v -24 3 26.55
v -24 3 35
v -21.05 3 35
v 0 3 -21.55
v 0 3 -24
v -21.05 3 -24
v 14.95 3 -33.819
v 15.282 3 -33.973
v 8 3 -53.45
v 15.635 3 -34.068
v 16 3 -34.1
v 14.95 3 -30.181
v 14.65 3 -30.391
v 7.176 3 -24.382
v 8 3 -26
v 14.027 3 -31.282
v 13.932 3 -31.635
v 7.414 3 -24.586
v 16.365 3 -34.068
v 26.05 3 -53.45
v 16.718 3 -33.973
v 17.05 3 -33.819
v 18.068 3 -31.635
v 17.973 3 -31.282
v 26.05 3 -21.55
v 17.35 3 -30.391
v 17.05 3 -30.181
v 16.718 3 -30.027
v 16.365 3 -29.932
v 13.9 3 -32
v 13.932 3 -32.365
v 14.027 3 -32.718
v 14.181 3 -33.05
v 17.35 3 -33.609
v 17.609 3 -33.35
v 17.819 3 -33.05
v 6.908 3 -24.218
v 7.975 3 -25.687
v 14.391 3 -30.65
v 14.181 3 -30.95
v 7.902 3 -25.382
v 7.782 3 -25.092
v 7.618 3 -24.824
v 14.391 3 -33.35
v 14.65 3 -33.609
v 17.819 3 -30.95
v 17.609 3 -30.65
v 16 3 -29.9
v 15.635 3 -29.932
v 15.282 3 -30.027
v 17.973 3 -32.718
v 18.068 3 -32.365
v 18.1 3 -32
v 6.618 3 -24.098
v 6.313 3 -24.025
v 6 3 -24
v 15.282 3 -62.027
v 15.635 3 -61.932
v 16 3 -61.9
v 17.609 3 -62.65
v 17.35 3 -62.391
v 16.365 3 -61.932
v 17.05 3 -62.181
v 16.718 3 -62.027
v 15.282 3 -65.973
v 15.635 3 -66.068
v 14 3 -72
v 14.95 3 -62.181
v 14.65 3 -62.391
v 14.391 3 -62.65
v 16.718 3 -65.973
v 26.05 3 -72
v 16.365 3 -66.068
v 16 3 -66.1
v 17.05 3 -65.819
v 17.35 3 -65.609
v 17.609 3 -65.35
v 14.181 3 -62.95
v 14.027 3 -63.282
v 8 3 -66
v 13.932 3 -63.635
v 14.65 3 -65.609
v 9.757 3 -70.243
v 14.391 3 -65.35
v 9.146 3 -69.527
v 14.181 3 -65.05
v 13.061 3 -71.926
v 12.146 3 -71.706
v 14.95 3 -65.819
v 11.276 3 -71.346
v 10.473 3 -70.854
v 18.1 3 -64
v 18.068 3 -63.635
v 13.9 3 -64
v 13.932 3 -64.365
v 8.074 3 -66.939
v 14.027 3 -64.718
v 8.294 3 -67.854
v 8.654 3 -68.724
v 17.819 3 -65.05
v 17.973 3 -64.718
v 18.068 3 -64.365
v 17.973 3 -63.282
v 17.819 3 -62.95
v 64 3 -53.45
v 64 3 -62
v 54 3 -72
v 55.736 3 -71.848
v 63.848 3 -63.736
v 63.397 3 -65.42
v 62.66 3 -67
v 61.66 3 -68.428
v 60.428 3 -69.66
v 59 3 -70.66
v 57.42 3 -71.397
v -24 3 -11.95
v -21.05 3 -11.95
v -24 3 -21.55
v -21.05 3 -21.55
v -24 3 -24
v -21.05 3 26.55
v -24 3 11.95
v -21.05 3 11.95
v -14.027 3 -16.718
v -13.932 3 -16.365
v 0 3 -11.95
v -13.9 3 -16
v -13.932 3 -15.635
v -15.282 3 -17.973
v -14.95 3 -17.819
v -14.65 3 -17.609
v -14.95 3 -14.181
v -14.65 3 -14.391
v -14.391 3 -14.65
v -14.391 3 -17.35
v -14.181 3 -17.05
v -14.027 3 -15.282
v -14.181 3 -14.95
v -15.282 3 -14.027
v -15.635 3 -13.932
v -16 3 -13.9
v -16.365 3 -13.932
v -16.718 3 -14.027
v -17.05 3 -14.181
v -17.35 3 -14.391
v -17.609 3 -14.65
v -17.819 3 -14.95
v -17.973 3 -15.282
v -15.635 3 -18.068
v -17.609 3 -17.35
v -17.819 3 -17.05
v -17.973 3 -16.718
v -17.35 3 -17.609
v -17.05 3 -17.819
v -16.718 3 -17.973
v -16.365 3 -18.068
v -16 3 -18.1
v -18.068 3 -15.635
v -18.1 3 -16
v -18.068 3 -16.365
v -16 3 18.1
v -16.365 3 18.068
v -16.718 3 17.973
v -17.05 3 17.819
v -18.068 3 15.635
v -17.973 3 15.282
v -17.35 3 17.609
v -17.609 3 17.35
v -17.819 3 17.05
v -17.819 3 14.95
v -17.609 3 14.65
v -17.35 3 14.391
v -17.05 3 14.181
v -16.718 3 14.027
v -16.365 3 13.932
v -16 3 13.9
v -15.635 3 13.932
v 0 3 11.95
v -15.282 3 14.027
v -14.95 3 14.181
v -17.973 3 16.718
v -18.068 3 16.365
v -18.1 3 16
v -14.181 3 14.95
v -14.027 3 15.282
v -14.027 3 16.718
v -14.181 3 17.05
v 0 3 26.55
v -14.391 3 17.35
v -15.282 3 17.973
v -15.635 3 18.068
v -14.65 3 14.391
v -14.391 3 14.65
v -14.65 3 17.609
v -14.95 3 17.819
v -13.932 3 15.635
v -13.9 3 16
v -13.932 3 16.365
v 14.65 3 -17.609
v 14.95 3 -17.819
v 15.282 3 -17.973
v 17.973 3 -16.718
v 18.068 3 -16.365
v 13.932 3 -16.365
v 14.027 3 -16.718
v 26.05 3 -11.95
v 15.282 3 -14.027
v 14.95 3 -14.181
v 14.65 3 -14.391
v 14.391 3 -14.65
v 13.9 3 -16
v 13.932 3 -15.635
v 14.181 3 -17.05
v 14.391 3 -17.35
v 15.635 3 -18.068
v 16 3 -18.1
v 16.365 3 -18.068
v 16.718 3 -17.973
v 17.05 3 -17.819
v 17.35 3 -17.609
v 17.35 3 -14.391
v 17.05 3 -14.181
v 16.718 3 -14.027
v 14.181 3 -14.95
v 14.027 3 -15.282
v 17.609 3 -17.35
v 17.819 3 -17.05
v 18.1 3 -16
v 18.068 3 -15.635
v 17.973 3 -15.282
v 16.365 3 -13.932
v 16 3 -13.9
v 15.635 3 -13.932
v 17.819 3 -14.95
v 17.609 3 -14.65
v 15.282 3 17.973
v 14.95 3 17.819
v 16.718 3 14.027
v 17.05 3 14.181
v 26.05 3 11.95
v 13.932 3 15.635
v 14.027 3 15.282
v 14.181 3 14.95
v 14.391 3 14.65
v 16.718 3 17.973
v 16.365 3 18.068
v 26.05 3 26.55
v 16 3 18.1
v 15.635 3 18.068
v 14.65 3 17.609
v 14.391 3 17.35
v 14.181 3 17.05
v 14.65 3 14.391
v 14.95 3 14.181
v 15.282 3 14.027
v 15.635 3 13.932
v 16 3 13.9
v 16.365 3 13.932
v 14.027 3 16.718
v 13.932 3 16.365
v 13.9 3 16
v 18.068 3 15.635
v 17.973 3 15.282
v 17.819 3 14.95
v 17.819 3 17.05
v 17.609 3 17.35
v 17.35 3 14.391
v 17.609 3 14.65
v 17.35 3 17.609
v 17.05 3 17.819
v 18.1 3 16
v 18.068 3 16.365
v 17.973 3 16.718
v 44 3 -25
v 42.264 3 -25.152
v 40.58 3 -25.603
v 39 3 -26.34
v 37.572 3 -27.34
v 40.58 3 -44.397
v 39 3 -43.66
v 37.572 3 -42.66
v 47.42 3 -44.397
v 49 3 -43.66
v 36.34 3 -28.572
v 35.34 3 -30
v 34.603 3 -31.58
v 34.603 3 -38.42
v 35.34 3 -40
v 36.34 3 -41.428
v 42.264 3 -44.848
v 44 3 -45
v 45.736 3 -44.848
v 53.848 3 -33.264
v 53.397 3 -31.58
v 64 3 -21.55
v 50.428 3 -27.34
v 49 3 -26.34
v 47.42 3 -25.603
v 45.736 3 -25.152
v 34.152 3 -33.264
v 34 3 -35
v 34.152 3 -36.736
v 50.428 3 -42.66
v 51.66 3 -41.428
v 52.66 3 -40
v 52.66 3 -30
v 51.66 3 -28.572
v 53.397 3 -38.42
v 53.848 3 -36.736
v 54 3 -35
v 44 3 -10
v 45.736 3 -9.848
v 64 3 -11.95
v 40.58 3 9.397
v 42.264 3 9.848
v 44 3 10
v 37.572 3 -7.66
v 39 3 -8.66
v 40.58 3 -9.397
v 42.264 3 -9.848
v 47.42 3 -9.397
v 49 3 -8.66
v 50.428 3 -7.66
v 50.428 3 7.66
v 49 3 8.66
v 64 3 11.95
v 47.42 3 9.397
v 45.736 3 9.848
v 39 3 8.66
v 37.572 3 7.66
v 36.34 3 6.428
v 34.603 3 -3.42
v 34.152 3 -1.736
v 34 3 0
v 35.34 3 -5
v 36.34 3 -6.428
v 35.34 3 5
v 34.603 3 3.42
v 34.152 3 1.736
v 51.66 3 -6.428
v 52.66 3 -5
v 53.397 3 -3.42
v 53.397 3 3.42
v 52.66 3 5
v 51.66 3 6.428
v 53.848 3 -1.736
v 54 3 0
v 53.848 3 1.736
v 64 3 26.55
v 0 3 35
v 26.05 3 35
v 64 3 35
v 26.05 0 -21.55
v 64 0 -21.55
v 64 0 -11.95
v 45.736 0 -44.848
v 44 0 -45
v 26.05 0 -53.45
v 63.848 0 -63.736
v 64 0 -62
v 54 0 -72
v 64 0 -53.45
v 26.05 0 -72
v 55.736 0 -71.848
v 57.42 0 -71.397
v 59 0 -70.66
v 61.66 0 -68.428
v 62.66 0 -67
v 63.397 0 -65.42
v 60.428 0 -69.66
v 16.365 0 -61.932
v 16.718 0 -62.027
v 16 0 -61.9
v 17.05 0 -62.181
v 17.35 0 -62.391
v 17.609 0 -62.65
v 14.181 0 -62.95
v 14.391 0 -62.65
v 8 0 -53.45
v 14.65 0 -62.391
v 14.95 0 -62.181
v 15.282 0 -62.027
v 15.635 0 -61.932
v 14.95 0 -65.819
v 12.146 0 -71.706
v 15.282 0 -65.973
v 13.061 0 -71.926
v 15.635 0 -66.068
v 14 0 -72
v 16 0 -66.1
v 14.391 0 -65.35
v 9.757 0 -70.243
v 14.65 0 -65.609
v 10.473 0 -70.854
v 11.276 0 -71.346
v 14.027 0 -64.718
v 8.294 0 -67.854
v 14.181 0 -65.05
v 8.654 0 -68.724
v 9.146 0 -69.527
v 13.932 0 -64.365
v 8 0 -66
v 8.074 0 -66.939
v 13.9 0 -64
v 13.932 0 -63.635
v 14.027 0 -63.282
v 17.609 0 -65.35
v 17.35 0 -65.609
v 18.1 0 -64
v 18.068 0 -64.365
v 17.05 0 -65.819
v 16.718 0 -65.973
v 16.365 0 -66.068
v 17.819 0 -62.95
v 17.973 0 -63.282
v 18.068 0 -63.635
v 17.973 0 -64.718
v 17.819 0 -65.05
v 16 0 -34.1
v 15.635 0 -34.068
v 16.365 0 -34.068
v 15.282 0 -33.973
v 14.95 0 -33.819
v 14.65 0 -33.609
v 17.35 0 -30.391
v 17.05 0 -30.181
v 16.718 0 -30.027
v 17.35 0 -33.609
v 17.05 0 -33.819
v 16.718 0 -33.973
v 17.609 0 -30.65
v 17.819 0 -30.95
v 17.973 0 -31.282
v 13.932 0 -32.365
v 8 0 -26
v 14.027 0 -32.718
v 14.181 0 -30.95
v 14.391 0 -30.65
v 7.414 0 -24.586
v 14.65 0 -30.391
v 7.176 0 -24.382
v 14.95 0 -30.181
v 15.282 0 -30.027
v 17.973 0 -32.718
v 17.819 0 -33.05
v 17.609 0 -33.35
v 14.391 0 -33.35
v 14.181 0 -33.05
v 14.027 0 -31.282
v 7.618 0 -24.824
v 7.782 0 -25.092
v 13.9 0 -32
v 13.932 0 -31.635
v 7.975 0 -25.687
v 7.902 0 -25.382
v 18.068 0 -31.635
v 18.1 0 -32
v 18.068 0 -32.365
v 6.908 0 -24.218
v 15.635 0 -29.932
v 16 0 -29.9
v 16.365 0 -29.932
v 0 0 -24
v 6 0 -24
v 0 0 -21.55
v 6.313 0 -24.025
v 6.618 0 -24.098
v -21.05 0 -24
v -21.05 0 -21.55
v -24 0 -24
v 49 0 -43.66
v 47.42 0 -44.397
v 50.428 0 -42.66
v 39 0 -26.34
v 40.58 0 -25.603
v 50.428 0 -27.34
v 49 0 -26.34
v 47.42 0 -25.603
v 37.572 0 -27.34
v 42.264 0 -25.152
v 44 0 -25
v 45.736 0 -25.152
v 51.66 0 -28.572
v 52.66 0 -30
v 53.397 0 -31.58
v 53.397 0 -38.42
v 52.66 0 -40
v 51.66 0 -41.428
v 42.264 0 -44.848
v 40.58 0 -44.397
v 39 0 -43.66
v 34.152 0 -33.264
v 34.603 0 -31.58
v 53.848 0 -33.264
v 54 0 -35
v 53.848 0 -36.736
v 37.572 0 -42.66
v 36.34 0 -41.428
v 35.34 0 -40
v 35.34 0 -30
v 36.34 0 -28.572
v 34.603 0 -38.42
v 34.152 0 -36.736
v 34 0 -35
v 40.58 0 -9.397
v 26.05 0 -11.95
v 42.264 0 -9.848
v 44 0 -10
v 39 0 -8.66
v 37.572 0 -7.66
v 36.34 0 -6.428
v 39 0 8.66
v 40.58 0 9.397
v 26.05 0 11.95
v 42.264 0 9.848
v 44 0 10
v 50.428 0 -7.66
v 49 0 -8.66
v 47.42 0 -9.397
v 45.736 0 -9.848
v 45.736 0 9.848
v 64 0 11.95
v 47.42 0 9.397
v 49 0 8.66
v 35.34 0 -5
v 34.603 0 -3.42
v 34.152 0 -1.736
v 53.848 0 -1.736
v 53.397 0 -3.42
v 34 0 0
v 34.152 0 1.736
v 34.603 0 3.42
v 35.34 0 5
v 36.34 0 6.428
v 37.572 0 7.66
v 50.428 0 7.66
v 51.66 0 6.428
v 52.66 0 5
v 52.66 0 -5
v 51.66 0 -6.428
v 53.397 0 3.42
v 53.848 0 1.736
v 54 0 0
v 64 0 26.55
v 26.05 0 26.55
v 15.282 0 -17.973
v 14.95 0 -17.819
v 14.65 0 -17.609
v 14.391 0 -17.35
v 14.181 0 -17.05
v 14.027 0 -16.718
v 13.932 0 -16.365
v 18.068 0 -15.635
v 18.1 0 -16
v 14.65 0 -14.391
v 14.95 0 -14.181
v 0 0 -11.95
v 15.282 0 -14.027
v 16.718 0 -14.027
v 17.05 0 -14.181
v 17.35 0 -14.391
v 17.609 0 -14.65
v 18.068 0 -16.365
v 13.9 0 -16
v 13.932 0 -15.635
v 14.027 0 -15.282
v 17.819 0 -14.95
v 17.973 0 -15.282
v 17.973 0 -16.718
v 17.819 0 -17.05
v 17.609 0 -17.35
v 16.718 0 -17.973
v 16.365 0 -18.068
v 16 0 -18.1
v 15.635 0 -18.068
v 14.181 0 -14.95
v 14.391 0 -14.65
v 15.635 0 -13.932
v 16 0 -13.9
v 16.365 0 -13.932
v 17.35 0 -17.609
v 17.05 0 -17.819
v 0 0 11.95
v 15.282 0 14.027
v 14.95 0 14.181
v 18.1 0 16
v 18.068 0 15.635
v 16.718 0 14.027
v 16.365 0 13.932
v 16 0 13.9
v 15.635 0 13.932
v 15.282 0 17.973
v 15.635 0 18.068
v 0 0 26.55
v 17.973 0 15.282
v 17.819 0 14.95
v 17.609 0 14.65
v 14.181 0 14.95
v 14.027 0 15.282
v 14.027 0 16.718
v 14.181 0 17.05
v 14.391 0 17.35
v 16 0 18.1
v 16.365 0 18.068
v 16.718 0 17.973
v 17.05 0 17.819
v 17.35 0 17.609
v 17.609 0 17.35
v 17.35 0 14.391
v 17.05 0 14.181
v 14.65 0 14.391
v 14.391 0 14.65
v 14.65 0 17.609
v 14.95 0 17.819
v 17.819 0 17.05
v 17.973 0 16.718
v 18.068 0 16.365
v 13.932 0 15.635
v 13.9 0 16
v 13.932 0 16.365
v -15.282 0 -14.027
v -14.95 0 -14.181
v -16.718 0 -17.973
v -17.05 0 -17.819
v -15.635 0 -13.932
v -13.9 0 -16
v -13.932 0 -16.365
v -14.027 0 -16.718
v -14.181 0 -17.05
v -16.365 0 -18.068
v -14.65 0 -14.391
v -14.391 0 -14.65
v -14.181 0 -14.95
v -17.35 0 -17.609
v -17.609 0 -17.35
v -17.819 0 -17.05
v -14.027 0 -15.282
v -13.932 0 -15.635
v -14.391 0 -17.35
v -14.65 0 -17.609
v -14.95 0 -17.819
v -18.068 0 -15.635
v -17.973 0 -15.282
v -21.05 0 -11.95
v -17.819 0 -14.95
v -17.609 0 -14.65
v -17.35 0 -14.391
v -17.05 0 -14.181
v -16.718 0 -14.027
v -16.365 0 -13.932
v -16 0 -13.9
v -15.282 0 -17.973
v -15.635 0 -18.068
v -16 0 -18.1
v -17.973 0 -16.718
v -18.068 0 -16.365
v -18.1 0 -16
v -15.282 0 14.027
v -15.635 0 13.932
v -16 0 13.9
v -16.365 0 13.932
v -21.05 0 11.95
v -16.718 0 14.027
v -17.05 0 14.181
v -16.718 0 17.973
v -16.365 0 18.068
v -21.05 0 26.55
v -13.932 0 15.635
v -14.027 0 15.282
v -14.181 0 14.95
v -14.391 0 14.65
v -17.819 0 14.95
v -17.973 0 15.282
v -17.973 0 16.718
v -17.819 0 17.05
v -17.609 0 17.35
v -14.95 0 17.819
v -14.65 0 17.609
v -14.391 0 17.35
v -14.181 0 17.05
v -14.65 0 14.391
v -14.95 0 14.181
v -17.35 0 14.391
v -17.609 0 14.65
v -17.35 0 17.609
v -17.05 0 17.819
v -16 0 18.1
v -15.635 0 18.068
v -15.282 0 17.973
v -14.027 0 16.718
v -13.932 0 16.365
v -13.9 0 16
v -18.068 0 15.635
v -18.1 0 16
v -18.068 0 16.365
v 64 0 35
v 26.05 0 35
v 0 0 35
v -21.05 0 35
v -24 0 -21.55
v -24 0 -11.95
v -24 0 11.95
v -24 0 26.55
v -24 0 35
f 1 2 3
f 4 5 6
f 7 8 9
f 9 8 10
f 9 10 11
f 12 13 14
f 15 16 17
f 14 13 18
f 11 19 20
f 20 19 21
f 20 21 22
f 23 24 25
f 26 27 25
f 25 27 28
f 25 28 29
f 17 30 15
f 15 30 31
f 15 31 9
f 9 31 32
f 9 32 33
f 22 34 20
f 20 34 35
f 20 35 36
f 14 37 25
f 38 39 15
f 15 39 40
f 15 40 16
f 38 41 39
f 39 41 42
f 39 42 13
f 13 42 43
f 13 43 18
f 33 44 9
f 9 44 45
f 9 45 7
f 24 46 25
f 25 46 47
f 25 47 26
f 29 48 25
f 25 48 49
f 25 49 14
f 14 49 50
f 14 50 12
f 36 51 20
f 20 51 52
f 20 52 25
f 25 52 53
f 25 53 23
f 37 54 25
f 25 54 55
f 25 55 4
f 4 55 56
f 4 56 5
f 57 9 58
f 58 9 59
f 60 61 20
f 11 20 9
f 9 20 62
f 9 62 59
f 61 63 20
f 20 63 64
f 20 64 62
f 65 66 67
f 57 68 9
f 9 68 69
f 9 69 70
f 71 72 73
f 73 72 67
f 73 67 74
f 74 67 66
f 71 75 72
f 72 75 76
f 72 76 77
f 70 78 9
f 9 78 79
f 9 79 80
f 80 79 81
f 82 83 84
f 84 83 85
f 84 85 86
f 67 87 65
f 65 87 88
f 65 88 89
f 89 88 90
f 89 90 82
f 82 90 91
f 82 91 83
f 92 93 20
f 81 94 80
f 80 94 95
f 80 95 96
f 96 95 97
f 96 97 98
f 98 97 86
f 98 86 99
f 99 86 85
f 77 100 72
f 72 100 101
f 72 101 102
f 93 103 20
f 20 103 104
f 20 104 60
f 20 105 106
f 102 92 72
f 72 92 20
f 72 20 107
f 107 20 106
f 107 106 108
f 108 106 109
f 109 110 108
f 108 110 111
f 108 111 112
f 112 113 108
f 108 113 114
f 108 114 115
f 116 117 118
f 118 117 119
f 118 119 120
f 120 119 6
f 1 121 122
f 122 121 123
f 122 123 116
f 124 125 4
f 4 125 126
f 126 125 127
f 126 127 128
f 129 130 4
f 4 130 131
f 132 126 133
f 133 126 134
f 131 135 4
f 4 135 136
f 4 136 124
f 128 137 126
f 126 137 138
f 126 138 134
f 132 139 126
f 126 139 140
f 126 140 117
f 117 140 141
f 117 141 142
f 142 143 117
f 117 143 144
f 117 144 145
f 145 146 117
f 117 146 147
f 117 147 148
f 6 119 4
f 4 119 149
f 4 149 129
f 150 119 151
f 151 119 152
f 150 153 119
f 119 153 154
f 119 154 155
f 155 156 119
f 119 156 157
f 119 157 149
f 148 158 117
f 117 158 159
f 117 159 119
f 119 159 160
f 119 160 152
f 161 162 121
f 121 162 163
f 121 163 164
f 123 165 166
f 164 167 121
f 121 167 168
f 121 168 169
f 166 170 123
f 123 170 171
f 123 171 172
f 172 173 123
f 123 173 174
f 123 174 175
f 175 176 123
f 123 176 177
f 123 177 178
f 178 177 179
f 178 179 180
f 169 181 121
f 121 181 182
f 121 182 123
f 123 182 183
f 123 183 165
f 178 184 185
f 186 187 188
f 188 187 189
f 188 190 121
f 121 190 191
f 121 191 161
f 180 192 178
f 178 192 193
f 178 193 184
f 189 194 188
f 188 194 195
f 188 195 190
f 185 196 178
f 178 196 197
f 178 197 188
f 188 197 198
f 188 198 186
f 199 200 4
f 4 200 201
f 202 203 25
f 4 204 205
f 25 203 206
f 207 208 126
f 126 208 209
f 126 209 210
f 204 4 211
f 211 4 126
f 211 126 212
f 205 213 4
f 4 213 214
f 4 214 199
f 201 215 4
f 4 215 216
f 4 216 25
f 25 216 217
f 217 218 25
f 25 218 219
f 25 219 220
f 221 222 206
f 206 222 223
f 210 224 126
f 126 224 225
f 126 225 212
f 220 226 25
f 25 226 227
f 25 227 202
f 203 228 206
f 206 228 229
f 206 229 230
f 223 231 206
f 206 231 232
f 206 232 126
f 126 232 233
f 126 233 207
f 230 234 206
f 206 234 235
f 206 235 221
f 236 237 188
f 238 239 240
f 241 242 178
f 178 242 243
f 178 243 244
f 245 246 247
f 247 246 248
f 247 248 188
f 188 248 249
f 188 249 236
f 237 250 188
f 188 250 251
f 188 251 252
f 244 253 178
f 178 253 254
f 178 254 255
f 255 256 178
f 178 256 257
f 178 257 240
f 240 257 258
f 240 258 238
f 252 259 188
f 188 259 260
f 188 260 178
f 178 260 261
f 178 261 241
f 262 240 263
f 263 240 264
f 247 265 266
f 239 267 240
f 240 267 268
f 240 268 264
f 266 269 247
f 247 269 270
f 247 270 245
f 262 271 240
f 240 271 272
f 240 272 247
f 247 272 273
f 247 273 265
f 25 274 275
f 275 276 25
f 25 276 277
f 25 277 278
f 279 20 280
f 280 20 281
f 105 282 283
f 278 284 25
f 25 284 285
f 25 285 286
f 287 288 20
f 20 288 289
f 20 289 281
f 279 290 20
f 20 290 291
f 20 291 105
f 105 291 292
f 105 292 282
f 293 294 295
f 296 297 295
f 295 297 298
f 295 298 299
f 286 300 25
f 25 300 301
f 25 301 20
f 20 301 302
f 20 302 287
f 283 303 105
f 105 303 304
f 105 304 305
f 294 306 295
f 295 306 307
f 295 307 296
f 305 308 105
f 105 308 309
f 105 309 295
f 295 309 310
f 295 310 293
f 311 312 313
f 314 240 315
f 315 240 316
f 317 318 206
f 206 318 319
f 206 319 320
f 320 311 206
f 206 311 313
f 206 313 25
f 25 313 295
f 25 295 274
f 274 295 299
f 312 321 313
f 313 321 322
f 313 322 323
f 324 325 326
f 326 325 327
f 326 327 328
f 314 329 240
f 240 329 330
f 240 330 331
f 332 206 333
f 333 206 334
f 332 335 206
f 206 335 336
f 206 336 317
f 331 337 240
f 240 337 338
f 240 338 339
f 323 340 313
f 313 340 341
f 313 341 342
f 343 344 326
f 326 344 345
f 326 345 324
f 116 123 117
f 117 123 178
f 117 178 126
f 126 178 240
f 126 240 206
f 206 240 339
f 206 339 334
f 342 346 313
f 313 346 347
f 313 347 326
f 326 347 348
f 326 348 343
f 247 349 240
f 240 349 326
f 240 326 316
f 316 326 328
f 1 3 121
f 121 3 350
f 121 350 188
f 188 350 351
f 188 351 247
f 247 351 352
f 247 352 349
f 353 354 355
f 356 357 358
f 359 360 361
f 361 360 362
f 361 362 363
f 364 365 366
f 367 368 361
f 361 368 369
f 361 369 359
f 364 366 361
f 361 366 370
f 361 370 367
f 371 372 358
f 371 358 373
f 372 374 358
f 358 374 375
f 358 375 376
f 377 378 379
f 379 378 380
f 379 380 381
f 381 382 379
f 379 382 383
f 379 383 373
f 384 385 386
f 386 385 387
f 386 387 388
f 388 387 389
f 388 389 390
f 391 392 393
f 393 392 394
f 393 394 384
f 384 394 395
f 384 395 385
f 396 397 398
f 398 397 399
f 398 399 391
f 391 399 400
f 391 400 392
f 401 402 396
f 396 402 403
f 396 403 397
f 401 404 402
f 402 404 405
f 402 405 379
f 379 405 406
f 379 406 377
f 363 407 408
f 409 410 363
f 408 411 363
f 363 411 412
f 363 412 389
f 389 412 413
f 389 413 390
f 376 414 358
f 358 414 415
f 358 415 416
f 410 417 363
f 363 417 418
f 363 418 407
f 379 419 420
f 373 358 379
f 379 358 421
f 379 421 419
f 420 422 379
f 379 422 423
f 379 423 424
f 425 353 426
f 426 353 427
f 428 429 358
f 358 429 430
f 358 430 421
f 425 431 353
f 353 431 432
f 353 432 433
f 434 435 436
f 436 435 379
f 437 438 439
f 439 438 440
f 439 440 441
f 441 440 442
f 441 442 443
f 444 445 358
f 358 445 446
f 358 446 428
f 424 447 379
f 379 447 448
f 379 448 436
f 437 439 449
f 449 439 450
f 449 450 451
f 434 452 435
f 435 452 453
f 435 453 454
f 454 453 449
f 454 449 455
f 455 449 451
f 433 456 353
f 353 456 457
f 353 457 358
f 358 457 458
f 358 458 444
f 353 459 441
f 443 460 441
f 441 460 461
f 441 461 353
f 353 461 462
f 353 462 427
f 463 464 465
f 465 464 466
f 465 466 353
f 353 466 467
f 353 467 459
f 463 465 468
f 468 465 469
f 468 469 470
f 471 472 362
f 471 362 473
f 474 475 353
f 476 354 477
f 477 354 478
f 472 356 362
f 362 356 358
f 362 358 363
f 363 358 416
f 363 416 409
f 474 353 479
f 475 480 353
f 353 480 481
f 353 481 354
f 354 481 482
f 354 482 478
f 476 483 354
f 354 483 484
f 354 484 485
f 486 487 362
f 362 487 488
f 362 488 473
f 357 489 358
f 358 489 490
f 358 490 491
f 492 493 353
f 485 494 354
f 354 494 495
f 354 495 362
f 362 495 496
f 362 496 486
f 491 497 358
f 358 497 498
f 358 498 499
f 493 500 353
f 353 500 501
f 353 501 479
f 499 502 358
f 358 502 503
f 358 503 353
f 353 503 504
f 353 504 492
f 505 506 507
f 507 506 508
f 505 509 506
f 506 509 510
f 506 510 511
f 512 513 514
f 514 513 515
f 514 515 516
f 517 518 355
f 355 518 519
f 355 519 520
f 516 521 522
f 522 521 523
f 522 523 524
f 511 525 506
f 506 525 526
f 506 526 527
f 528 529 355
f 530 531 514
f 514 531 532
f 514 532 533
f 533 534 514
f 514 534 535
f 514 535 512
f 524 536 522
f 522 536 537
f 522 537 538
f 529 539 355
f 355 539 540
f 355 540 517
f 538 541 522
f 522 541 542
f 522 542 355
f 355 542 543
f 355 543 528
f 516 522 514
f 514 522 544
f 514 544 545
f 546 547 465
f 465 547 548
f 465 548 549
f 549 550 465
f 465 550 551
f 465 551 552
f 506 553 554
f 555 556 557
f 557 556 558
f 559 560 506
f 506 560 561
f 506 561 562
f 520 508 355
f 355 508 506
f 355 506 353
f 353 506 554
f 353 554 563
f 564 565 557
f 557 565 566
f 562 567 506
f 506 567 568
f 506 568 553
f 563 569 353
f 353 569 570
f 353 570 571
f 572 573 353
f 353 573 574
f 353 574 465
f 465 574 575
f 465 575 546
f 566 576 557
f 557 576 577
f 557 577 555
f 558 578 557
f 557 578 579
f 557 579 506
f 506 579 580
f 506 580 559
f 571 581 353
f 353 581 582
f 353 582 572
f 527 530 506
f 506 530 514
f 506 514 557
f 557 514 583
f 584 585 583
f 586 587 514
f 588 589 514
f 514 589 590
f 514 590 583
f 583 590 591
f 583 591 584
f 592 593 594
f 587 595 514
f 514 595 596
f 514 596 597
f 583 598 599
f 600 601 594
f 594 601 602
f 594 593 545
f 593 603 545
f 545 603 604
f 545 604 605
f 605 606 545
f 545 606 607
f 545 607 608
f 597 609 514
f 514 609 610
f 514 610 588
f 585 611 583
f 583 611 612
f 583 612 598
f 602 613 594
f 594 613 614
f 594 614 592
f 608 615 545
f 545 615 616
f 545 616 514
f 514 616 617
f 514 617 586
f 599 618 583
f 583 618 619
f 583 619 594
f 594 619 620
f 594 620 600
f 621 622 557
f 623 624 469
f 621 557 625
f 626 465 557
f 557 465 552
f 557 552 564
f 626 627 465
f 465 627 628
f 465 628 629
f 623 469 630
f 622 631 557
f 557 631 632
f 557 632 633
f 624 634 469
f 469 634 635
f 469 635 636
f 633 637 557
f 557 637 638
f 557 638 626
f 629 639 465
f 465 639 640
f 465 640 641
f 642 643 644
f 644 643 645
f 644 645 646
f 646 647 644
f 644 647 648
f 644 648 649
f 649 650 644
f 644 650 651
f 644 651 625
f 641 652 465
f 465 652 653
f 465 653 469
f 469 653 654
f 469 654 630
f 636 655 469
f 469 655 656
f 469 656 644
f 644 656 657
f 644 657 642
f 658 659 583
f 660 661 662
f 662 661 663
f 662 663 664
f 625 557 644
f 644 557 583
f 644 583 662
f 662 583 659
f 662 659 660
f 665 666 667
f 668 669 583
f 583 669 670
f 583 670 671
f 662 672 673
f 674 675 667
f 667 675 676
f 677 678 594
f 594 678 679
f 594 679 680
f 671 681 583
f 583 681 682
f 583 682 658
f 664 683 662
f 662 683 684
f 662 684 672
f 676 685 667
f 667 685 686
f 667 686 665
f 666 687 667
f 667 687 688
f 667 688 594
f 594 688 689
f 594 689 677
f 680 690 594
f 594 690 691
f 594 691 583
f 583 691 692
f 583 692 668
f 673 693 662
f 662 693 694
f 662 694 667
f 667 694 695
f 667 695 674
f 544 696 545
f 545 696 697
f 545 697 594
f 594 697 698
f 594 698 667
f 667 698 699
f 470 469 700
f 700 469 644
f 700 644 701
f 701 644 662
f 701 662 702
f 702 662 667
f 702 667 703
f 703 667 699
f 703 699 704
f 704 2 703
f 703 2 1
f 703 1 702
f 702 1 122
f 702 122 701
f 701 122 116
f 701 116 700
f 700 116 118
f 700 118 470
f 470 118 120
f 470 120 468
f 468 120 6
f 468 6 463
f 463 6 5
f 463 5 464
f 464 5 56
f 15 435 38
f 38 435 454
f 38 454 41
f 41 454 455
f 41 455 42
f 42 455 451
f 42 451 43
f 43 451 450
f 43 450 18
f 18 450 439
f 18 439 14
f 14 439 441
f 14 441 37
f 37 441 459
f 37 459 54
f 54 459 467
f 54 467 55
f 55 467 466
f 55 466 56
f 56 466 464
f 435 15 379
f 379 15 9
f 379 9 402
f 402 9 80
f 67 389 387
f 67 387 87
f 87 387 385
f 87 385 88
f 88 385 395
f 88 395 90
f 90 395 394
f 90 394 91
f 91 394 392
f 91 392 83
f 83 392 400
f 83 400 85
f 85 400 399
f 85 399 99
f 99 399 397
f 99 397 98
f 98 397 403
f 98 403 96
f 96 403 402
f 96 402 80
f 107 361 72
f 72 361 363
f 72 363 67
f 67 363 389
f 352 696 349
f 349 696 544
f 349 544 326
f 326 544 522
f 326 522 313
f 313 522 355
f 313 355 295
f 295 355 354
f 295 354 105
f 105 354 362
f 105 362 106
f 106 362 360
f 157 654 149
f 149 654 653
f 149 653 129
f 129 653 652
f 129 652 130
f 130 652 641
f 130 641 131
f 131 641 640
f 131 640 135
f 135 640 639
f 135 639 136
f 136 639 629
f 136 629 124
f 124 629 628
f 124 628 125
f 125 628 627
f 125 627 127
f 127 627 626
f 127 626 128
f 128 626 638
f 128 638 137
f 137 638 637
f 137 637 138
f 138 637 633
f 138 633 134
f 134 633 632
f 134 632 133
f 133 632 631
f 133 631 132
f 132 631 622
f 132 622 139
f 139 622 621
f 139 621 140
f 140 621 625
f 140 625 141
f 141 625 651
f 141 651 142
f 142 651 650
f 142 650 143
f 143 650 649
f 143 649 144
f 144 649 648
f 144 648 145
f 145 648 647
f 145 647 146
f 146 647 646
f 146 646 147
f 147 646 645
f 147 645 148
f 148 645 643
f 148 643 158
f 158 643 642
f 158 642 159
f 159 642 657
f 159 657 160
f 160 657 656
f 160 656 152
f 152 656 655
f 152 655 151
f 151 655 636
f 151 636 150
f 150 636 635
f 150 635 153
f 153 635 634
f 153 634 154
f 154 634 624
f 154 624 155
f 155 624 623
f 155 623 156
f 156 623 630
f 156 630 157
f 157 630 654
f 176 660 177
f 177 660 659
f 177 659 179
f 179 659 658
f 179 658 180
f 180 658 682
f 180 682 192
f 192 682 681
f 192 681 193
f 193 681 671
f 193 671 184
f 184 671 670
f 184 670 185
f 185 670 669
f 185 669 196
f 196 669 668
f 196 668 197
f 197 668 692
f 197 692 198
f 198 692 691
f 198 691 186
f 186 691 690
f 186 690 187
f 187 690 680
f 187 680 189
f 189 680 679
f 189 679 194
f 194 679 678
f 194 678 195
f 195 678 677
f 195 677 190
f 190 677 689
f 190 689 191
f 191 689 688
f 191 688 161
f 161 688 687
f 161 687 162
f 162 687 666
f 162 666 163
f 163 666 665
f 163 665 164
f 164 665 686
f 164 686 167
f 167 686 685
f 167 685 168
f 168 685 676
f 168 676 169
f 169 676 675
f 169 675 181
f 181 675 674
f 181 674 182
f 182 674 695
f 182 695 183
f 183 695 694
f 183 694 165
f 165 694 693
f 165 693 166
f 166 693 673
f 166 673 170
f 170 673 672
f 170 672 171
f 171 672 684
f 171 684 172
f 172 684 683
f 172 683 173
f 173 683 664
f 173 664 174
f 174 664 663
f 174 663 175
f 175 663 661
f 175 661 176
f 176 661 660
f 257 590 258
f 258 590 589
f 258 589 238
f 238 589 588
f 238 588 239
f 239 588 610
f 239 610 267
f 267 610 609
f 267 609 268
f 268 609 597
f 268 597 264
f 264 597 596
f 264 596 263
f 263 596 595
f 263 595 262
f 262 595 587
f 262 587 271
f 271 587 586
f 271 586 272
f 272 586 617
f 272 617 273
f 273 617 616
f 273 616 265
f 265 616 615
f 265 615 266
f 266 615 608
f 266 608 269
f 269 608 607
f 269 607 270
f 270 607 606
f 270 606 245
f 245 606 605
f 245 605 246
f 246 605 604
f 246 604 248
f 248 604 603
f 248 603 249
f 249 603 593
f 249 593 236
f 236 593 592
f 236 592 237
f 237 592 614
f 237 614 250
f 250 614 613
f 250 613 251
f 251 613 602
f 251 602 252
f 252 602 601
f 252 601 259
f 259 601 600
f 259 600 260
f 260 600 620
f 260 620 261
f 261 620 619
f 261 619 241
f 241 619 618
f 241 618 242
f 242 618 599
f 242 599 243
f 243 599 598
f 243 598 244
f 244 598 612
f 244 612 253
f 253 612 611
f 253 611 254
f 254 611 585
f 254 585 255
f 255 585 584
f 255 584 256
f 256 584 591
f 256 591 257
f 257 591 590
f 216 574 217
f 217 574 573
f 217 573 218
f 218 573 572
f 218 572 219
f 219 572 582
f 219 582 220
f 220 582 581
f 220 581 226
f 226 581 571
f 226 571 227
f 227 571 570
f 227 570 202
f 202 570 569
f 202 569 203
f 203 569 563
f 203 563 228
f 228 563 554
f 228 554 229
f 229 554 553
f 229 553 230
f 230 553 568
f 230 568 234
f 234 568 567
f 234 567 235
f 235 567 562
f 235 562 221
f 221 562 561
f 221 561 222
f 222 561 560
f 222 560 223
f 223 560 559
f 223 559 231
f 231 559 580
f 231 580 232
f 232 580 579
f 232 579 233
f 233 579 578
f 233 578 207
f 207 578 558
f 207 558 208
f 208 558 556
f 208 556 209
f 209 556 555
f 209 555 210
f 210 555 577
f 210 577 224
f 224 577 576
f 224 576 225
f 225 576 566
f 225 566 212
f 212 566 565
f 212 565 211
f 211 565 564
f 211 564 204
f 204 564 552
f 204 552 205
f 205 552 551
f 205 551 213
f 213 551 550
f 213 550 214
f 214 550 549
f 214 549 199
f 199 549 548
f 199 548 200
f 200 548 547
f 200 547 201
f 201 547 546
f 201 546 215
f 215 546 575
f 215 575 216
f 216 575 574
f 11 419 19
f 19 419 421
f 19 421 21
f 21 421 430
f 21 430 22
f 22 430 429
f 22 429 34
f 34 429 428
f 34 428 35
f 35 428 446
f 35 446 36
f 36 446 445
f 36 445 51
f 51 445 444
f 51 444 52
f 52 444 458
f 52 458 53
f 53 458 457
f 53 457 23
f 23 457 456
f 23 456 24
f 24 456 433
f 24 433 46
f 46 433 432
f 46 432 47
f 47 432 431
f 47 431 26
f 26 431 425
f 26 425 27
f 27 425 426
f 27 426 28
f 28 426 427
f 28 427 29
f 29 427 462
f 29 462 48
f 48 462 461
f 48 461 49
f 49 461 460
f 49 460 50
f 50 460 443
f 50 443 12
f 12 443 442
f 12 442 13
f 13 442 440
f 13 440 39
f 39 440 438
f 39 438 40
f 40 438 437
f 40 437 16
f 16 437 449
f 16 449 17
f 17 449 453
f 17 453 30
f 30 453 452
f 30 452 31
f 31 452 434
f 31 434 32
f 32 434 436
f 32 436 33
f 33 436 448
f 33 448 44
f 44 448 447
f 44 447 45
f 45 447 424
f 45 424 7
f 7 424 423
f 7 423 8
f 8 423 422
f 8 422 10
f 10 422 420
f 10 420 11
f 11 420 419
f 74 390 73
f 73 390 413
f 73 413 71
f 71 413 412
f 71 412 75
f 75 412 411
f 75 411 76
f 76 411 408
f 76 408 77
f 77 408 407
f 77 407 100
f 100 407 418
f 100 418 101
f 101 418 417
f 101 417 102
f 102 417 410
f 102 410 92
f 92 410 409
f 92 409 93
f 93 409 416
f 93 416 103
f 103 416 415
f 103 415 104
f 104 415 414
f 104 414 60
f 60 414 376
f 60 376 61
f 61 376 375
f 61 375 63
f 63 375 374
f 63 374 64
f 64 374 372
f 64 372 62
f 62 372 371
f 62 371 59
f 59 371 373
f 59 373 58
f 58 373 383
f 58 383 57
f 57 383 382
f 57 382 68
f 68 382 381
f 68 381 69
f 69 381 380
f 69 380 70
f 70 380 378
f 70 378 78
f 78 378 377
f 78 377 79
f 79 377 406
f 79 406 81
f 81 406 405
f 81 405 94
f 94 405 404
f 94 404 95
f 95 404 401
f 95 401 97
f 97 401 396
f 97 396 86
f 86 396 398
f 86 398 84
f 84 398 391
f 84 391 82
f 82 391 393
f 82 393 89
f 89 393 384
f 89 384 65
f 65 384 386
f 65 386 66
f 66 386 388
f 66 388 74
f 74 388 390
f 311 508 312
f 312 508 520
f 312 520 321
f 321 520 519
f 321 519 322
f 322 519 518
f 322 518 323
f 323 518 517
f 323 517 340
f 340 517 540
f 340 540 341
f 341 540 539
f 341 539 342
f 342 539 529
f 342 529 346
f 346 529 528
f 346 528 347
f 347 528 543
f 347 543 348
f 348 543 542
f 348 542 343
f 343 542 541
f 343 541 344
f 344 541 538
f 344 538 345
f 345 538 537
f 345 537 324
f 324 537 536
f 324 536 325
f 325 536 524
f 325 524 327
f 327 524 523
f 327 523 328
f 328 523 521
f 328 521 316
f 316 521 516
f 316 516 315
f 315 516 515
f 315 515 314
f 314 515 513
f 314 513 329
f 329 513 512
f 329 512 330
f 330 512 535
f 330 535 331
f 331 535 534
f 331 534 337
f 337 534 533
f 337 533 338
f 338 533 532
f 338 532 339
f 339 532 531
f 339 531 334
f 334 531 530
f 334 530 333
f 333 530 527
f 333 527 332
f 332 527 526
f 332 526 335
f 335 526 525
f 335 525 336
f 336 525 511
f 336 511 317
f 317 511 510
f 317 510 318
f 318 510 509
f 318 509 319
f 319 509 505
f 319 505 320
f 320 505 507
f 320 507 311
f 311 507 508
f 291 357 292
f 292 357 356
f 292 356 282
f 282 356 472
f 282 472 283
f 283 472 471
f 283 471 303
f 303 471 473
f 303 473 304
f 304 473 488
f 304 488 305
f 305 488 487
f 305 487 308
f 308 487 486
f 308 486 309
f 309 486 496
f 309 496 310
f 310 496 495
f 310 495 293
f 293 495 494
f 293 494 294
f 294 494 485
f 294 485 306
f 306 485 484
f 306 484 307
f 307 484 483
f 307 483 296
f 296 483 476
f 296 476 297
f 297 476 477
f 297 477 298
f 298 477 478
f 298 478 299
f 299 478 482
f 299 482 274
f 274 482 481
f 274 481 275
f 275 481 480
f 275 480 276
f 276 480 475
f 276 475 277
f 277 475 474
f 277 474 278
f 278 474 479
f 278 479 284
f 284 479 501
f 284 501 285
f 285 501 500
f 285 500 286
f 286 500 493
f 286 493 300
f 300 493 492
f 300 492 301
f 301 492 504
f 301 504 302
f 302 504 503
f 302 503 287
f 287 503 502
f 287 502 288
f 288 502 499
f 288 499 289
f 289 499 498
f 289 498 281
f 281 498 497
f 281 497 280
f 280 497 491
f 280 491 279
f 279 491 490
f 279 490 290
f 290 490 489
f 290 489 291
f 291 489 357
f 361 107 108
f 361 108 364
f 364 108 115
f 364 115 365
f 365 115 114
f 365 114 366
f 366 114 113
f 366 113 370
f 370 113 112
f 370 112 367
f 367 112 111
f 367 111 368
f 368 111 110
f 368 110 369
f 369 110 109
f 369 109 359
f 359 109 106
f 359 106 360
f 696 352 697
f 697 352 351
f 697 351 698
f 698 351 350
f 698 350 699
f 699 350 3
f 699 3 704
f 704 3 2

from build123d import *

# Parameters (mm, degrees)
BACKPLATELEFT_MIRRORED_OUTLINE_R   = 2.1
BACKPLATELEFT_MIRRORED_OUTLINE_R_2 = 10
BACKPLATELEFT_MIRRORED_DEPTH       = 3
SKETCH2_W                          = 40
SKETCH2_H                          = 103.465043027
CUT_EXTRUDE1_DEPTH                 = 10
SKETCH3_W                          = 25.884261779
SKETCH3_H                          = 20.988460011
BOSS_EXTRUDE1_DEPTH                = 3
FILLET1_R                          = 10
CUT_EXTRUDE2_DEPTH                 = 97.379458392
CUT_EXTRUDE2_DEPTH_BACK            = 97.379458392
SKETCH4_W                          = 88
SKETCH4_H                          = 4


# Read off the part's stored shape, not the designer's step: backPlateLeft_Mirrored
with BuildPart() as part:
    # backPlateLeft_Mirrored outline → backPlateLeft_Mirrored (new body)
    with BuildSketch(Plane(origin=(0, 0, 0), x_dir=(1, 0, 0), z_dir=(0, 1, 0))):
        with BuildLine():
            Line((-24, 24), (-24, -39))
            Line((-24, -39), (64, -39))
            Line((64, -39), (64, 135))
            ThreePointArc((64, 135), (62.242640687, 139.242640687), (58, 141))
            Line((58, 141), (30, 141))
            ThreePointArc((30, 141), (25.757359313, 139.242640687), (24, 135))
            Line((24, 135), (24, 72))
            Line((24, 72), (14, 72))
            ThreePointArc((14, 72), (9.757359313, 70.242640687), (8, 66))
            Line((8, 66), (8, 26))
            ThreePointArc((8, 26), (7.414213562, 24.585786438), (6, 24))
            Line((6, 24), (-24, 24))
        make_face()
        with Locations((-16, -16)):
            Circle(BACKPLATELEFT_MIRRORED_OUTLINE_R, mode=Mode.SUBTRACT)
        with Locations((16, -16)):
            Circle(BACKPLATELEFT_MIRRORED_OUTLINE_R, mode=Mode.SUBTRACT)
        with Locations((-16, 16)):
            Circle(BACKPLATELEFT_MIRRORED_OUTLINE_R, mode=Mode.SUBTRACT)
        with Locations((16, 16)):
            Circle(BACKPLATELEFT_MIRRORED_OUTLINE_R, mode=Mode.SUBTRACT)
        with Locations((16, 32)):
            Circle(BACKPLATELEFT_MIRRORED_OUTLINE_R, mode=Mode.SUBTRACT)
        with Locations((44, 0)):
            Circle(BACKPLATELEFT_MIRRORED_OUTLINE_R_2, mode=Mode.SUBTRACT)
        with Locations((44, 35)):
            Circle(BACKPLATELEFT_MIRRORED_OUTLINE_R_2, mode=Mode.SUBTRACT)
        with Locations((16, 64)):
            Circle(BACKPLATELEFT_MIRRORED_OUTLINE_R, mode=Mode.SUBTRACT)
        with Locations((44, 70)):
            Circle(BACKPLATELEFT_MIRRORED_OUTLINE_R_2, mode=Mode.SUBTRACT)
        with Locations((44, 105)):
            Circle(BACKPLATELEFT_MIRRORED_OUTLINE_R_2, mode=Mode.SUBTRACT)
    extrude(amount=BACKPLATELEFT_MIRRORED_DEPTH)

    # Sketch2 → Cut-Extrude1 (cut)
    with BuildSketch(Plane(origin=(0, 3, 0), x_dir=(1, 0, 0), z_dir=(0, 1, 0))):
        with Locations((44, 123.732521514)):
            Rectangle(SKETCH2_W, SKETCH2_H)
    extrude(amount=-CUT_EXTRUDE1_DEPTH, mode=Mode.SUBTRACT)

    # Sketch3 → Boss-Extrude1 (add)
    with BuildSketch(Plane(origin=(0, 3, 0), x_dir=(1, 0, 0), z_dir=(0, 1, 0))):
        with Locations((44.305953134, 61.505769994)):
            Rectangle(SKETCH3_W, SKETCH3_H)
    extrude(amount=-BOSS_EXTRUDE1_DEPTH)

    # Fillet1
    fillet1_edges = [part.edges().sort_by_distance(p)[0] for p in [
        (64, 1.5, -72),
    ]]
    fillet(fillet1_edges, radius=FILLET1_R)

    # Sketch4 → Cut-Extrude2 (cut, two sides: drawn at the far end of the back side and taken through both)
    with BuildSketch(Plane(origin=(0, 3, 0), x_dir=(1, 0, 0), z_dir=(0, 1, 0)).offset(-CUT_EXTRUDE2_DEPTH_BACK)):
        with Locations((20, -37)):
            Rectangle(SKETCH4_W, SKETCH4_H)
    extrude(amount=CUT_EXTRUDE2_DEPTH + CUT_EXTRUDE2_DEPTH_BACK, mode=Mode.SUBTRACT)


solid = part.part
